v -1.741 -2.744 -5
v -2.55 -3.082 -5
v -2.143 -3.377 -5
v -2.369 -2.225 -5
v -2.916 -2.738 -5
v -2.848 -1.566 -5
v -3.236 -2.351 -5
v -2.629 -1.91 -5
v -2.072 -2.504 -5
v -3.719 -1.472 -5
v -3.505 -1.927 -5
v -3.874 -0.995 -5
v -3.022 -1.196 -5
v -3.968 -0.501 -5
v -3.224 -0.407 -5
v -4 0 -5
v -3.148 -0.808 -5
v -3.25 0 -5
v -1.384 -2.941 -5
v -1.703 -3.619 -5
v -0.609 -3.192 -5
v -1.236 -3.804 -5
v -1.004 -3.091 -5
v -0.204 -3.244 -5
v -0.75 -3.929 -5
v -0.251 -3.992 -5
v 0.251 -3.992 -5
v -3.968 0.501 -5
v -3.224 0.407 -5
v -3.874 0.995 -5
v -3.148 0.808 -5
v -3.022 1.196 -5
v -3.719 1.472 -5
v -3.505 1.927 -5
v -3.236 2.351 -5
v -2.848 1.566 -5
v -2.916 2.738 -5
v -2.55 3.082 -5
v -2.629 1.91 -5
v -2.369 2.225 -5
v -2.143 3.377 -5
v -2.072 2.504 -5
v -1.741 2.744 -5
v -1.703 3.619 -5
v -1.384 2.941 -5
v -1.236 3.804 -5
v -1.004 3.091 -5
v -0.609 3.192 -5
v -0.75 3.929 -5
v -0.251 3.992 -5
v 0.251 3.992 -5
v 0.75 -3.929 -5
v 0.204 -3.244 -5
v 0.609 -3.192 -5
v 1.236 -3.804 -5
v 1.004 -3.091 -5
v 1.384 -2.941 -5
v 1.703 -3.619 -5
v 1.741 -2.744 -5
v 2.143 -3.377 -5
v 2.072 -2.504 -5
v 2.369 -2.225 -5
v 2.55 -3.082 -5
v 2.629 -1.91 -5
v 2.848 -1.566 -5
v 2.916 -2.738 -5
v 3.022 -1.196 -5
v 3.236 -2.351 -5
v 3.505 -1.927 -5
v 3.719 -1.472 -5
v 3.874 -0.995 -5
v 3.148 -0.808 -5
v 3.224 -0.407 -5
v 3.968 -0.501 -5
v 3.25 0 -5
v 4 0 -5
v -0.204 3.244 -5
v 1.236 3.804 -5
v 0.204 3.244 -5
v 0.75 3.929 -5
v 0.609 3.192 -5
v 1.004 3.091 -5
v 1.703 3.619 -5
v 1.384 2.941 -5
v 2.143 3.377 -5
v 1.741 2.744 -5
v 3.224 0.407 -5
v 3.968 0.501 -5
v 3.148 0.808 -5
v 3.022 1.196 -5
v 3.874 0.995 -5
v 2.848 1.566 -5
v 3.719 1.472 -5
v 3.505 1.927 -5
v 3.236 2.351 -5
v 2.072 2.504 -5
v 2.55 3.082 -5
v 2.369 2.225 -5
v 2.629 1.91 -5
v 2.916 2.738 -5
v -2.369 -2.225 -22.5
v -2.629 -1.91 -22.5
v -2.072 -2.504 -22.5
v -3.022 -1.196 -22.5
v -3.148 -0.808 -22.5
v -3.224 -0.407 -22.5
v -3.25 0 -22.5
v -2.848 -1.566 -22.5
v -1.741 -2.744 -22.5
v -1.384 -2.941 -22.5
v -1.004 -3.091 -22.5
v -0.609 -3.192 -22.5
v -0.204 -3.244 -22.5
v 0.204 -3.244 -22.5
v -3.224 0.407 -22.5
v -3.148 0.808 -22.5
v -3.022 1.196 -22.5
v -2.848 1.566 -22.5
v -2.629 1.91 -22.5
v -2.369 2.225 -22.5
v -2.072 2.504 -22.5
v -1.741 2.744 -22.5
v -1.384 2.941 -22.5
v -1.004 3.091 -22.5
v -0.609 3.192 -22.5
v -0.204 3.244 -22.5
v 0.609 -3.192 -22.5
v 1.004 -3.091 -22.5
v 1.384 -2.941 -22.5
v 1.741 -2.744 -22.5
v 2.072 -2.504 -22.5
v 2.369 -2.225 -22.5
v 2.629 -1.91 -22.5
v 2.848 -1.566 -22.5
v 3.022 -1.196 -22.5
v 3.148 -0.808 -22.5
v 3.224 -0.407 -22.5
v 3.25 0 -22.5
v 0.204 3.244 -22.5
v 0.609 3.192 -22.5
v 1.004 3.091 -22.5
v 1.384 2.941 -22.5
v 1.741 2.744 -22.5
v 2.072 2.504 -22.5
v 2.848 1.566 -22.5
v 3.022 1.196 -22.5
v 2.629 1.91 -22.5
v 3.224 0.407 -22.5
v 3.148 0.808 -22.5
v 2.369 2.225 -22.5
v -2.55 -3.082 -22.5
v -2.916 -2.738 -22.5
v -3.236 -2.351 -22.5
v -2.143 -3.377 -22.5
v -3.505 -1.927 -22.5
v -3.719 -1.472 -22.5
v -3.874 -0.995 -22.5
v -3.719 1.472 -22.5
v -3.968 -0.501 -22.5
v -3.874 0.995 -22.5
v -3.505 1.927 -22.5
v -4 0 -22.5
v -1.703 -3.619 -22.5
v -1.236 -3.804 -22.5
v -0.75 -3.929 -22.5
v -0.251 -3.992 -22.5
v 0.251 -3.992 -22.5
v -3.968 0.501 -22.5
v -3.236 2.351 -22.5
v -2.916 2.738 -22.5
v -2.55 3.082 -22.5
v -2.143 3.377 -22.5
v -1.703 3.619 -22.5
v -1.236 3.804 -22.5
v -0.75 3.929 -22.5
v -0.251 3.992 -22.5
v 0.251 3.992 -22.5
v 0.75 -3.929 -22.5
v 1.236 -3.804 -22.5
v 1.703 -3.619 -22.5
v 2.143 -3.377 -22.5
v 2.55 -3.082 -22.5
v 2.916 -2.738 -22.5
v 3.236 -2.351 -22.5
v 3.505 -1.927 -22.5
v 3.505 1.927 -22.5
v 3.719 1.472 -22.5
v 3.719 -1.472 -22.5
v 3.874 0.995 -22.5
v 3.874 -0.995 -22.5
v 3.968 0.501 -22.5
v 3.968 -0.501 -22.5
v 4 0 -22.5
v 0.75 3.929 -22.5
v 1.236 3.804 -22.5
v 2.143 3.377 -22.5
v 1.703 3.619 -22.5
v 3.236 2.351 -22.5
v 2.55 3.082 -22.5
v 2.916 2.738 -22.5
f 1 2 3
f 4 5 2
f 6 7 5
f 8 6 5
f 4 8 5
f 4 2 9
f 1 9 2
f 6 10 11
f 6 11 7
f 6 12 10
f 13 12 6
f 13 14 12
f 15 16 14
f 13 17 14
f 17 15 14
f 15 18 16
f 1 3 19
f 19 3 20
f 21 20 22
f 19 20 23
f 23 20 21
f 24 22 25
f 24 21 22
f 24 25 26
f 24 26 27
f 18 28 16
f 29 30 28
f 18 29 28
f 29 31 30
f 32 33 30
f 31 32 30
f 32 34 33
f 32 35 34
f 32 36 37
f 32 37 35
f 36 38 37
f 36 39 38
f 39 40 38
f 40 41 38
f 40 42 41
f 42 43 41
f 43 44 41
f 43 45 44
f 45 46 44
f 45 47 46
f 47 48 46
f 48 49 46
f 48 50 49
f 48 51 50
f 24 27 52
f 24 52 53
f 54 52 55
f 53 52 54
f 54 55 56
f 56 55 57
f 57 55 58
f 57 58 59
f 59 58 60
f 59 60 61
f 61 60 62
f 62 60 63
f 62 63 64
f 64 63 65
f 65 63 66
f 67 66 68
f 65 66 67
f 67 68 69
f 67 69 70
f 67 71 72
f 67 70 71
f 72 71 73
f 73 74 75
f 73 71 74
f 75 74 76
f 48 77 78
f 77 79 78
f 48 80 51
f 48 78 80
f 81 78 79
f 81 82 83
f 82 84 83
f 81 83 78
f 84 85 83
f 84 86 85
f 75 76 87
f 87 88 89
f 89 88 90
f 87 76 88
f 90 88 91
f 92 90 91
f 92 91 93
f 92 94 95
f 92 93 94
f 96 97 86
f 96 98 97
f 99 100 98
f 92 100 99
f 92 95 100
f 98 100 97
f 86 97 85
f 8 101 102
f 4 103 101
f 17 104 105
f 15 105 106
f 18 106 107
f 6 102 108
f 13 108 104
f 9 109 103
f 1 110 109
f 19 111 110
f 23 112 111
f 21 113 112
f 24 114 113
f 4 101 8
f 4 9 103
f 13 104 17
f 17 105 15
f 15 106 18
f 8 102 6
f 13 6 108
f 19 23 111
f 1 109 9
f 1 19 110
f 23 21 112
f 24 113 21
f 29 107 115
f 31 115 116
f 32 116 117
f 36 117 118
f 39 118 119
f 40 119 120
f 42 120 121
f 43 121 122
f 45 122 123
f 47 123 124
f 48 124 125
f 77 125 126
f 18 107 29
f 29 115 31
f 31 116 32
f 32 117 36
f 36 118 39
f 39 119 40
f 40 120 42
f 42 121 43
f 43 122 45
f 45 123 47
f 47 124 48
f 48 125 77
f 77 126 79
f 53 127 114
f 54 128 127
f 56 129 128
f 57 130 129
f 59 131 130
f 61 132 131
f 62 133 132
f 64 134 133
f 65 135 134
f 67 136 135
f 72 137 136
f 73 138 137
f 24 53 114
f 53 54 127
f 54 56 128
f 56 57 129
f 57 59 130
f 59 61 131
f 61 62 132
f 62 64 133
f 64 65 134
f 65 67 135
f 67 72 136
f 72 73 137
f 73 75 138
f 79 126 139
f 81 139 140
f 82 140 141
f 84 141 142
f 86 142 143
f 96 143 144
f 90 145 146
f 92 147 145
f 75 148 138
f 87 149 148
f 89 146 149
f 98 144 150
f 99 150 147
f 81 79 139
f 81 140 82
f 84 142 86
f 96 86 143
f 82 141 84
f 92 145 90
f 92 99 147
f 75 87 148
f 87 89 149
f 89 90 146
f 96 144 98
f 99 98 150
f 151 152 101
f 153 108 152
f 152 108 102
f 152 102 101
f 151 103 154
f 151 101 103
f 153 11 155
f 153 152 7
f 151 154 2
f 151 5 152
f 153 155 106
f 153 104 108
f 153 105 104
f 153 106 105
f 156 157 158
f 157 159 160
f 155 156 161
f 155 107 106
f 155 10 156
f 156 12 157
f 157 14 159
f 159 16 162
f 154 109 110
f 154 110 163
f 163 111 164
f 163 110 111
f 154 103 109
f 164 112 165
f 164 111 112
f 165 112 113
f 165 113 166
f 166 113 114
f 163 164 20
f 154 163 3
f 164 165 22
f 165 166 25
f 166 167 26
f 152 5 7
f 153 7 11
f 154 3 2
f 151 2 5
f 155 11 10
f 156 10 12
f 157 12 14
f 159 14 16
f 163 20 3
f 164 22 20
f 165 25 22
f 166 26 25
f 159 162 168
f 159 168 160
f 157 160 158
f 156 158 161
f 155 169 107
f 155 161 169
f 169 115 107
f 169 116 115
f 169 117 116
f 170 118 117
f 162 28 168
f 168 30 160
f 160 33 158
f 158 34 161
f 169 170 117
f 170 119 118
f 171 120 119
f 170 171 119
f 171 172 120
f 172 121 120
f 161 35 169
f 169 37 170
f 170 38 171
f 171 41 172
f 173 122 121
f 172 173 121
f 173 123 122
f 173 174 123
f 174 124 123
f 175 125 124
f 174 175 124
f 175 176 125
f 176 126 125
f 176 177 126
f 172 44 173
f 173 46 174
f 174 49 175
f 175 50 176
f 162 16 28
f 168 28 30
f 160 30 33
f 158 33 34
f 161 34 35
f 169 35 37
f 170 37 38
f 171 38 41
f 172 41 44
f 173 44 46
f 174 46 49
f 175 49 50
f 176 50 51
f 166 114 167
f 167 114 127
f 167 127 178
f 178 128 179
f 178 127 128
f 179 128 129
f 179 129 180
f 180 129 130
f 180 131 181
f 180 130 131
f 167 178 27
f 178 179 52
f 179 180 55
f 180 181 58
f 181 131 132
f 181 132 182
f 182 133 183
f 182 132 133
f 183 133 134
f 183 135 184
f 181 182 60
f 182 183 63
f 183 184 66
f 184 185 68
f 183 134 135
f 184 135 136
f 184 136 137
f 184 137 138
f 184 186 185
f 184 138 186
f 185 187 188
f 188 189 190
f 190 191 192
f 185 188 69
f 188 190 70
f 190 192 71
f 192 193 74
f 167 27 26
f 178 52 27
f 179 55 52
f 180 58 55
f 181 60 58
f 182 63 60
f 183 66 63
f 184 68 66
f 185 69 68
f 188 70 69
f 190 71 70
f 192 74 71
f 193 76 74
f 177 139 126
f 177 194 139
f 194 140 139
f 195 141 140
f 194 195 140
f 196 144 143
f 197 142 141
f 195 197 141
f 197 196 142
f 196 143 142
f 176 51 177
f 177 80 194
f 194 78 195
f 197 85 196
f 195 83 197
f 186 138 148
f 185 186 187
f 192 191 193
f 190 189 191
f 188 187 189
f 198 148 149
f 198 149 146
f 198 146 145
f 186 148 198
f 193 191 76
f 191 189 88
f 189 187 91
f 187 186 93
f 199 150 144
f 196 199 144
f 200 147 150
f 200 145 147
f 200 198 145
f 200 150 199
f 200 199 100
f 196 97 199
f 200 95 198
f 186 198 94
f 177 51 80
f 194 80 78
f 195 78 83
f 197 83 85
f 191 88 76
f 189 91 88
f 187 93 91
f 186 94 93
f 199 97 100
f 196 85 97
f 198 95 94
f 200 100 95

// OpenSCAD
$fn = 50;

difference() {
	union() {
		translate(v = [0, 0, -22.5]) {
			cylinder(h = 22.5, r = 4.0);
		}
	}
	union() {
		translate(v = [0, 0, 0]) {
			rotate(a = [0, 0, 0]) {
				difference() {
					union() {
						translate(v = [0, 0, -5]) {
							linear_extrude(height = 5) {
								polygon(points = [[5.914249999999999, 0.0], [2.957125, 5.1218907443321156], [-2.9571249999999982, 5.1218907443321156], [-5.914249999999999, 7.242867331857232e-16], [-2.9571250000000022, -5.121890744332115], [2.9571249999999956, -5.121890744332118]]);
							}
						}
					}
					union();
				}
			}
		}
		#translate(v = [0, 0, -100.0]) {
			cylinder(h = 200, r = 3.25);
		}
	}
}
